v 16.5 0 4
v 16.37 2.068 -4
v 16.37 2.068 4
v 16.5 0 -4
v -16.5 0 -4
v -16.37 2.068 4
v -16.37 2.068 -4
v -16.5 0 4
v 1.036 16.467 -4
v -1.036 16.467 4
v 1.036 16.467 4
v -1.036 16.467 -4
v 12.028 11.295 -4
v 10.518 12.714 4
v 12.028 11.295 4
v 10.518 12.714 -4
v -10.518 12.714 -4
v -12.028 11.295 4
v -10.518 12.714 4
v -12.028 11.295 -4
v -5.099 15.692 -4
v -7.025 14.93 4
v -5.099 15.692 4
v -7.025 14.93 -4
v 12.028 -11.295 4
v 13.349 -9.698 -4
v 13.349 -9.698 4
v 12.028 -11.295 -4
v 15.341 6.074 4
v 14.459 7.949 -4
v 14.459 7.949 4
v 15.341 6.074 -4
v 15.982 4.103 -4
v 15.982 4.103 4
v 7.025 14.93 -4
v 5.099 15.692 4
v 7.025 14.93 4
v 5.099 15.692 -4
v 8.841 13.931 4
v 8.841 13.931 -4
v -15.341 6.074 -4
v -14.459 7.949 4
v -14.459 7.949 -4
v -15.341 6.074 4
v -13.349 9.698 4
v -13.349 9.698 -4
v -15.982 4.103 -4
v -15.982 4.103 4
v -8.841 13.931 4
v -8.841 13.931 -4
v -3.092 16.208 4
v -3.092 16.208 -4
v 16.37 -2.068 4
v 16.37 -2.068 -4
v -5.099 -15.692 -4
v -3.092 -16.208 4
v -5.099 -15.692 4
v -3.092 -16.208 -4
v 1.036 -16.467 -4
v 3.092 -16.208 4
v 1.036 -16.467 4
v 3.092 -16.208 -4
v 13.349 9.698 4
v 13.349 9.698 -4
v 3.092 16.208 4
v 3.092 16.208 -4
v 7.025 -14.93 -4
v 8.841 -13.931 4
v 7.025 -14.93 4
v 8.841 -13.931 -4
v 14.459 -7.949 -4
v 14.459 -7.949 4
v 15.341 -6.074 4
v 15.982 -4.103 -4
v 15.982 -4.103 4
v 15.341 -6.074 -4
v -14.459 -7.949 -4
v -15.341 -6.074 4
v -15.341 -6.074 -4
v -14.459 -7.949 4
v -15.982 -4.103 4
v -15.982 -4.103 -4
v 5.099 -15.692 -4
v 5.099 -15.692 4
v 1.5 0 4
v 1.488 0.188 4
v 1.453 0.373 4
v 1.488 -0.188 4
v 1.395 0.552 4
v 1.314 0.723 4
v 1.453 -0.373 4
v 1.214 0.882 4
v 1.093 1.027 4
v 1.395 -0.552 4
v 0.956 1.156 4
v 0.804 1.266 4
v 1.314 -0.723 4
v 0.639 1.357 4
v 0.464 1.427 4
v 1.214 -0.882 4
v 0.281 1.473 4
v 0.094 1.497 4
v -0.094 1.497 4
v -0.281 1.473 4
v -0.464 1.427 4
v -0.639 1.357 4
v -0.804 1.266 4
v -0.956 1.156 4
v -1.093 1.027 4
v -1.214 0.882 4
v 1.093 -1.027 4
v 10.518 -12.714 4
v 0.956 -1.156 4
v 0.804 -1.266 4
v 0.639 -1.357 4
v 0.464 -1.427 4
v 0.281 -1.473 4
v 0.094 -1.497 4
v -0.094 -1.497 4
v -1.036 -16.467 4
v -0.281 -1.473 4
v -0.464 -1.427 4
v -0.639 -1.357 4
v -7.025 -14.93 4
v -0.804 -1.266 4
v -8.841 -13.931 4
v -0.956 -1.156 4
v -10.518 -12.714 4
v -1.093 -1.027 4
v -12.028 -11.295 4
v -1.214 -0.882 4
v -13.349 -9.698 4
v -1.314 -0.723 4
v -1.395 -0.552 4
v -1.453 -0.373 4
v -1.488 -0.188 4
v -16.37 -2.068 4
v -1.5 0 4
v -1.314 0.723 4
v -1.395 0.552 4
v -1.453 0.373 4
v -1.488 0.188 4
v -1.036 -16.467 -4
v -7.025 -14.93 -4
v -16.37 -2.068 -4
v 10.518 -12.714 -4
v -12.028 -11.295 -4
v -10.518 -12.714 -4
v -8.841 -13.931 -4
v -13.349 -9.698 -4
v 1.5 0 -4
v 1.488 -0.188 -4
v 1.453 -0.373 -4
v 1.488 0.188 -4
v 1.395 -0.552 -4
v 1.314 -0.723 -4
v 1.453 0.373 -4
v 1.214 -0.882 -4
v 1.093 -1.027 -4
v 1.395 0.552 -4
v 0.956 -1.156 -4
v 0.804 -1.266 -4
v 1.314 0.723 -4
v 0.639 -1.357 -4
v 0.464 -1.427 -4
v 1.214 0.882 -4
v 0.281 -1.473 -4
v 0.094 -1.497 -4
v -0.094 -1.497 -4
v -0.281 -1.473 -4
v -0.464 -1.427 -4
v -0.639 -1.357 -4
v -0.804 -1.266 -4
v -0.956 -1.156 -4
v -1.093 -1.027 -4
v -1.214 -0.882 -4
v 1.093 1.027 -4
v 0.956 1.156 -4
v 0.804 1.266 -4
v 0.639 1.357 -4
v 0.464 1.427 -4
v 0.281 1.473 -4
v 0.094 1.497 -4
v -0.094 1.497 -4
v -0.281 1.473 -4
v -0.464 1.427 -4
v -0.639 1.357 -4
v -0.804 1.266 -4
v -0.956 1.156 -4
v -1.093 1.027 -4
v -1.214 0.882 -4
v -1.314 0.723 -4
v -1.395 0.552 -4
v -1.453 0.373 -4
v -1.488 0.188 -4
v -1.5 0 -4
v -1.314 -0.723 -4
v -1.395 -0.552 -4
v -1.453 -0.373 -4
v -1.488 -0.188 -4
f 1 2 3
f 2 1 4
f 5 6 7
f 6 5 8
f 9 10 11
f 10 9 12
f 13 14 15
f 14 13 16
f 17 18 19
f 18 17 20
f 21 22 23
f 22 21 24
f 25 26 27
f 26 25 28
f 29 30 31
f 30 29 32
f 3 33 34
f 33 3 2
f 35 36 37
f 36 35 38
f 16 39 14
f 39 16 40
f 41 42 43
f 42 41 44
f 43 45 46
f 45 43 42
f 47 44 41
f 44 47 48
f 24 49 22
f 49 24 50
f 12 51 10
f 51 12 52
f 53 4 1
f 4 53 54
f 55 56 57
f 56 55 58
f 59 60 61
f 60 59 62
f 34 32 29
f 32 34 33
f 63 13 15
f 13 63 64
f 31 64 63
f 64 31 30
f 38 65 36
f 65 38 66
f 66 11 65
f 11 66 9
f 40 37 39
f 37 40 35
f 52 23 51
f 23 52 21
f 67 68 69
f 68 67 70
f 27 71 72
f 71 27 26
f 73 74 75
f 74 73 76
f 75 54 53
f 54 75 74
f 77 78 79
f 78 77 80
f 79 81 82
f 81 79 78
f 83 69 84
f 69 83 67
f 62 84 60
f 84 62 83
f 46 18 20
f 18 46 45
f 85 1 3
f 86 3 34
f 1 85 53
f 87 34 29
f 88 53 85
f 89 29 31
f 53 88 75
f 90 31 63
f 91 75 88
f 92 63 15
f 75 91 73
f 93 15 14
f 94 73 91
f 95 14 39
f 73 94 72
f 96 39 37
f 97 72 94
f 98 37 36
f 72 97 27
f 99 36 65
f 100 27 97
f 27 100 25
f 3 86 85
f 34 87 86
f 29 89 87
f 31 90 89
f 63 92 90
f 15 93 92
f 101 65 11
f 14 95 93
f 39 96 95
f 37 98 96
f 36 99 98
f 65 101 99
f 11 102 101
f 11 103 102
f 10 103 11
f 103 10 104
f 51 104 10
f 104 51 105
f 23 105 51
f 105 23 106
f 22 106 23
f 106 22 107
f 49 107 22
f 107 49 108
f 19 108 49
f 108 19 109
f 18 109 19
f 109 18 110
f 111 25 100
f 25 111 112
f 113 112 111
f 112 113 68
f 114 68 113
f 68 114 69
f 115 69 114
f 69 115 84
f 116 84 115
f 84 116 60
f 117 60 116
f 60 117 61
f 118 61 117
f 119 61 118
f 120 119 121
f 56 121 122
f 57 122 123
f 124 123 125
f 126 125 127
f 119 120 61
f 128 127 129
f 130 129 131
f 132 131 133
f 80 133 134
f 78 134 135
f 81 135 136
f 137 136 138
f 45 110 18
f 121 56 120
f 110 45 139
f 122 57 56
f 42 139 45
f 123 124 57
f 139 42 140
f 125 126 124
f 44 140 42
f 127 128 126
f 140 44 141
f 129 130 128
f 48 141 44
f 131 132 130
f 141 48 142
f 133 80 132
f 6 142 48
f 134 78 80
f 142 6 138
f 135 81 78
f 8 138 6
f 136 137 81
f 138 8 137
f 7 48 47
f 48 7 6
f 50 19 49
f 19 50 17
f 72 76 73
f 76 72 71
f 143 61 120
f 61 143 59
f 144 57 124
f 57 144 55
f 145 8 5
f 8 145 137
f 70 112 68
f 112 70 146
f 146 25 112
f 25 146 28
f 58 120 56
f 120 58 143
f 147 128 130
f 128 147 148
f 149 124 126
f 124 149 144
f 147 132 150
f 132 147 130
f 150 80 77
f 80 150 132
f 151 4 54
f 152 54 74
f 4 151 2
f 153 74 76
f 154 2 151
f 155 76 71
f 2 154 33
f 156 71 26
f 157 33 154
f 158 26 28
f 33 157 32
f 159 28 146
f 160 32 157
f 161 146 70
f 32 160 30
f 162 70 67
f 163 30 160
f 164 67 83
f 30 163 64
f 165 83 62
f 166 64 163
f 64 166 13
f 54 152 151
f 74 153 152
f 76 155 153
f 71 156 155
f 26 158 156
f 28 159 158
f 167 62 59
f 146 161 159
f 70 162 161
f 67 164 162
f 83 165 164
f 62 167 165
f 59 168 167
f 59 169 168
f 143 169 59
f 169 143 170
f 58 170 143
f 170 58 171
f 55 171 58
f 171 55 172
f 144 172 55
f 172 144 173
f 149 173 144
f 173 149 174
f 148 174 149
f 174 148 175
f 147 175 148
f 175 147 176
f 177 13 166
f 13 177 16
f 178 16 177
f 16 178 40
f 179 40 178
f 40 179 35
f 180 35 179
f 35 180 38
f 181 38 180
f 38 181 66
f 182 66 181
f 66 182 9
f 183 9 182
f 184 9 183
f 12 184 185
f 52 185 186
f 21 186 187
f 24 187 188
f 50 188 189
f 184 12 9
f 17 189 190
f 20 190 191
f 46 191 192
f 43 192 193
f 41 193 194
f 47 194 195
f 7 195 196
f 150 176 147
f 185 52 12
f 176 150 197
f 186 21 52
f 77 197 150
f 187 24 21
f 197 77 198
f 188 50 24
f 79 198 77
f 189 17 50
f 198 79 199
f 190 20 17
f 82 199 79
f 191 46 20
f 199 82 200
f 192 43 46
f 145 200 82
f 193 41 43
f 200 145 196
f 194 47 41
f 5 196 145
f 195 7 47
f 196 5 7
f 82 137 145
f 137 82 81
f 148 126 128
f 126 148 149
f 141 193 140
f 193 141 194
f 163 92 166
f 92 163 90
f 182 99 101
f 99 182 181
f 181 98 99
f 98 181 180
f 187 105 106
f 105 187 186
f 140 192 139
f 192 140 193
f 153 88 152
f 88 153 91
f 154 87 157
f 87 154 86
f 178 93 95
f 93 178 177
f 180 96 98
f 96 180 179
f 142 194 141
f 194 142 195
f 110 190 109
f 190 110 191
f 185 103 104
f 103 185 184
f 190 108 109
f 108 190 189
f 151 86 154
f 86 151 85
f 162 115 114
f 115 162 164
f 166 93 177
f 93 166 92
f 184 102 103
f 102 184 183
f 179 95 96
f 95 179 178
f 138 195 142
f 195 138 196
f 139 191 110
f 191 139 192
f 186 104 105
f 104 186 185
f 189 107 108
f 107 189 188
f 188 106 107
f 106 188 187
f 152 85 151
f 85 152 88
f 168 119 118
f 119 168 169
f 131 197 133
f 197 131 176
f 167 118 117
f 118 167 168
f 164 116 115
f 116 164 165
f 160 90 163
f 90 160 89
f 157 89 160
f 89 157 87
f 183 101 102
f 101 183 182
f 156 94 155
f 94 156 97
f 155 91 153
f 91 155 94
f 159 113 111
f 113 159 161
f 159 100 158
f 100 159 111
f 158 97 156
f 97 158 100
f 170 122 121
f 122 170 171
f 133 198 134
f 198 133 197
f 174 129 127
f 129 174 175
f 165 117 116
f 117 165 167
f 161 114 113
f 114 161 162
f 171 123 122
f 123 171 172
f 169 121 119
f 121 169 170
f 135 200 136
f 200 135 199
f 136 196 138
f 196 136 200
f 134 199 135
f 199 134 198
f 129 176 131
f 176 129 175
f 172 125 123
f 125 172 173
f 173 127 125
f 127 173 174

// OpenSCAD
$fn = 50;


difference() {
	union() {
		translate(v = [0, 0, -4.0000000000]) {
			cylinder(h = 8, r = 16.5000000000);
		}
	}
	union() {
		translate(v = [0, 0, -100.0000000000]) {
			cylinder(h = 200, r = 1.5000000000);
		}
	}
}
